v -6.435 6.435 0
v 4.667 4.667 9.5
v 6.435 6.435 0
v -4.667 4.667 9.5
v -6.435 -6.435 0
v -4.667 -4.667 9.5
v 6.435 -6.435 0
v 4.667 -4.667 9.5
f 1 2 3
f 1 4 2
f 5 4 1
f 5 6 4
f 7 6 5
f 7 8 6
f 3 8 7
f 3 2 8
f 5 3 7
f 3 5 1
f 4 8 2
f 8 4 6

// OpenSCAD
xy = 18.2;
z = 9.5;

$fn=4;

rotate( [0, 0, 45])
cylinder( d1=xy, d2=xy-5, h=z);
